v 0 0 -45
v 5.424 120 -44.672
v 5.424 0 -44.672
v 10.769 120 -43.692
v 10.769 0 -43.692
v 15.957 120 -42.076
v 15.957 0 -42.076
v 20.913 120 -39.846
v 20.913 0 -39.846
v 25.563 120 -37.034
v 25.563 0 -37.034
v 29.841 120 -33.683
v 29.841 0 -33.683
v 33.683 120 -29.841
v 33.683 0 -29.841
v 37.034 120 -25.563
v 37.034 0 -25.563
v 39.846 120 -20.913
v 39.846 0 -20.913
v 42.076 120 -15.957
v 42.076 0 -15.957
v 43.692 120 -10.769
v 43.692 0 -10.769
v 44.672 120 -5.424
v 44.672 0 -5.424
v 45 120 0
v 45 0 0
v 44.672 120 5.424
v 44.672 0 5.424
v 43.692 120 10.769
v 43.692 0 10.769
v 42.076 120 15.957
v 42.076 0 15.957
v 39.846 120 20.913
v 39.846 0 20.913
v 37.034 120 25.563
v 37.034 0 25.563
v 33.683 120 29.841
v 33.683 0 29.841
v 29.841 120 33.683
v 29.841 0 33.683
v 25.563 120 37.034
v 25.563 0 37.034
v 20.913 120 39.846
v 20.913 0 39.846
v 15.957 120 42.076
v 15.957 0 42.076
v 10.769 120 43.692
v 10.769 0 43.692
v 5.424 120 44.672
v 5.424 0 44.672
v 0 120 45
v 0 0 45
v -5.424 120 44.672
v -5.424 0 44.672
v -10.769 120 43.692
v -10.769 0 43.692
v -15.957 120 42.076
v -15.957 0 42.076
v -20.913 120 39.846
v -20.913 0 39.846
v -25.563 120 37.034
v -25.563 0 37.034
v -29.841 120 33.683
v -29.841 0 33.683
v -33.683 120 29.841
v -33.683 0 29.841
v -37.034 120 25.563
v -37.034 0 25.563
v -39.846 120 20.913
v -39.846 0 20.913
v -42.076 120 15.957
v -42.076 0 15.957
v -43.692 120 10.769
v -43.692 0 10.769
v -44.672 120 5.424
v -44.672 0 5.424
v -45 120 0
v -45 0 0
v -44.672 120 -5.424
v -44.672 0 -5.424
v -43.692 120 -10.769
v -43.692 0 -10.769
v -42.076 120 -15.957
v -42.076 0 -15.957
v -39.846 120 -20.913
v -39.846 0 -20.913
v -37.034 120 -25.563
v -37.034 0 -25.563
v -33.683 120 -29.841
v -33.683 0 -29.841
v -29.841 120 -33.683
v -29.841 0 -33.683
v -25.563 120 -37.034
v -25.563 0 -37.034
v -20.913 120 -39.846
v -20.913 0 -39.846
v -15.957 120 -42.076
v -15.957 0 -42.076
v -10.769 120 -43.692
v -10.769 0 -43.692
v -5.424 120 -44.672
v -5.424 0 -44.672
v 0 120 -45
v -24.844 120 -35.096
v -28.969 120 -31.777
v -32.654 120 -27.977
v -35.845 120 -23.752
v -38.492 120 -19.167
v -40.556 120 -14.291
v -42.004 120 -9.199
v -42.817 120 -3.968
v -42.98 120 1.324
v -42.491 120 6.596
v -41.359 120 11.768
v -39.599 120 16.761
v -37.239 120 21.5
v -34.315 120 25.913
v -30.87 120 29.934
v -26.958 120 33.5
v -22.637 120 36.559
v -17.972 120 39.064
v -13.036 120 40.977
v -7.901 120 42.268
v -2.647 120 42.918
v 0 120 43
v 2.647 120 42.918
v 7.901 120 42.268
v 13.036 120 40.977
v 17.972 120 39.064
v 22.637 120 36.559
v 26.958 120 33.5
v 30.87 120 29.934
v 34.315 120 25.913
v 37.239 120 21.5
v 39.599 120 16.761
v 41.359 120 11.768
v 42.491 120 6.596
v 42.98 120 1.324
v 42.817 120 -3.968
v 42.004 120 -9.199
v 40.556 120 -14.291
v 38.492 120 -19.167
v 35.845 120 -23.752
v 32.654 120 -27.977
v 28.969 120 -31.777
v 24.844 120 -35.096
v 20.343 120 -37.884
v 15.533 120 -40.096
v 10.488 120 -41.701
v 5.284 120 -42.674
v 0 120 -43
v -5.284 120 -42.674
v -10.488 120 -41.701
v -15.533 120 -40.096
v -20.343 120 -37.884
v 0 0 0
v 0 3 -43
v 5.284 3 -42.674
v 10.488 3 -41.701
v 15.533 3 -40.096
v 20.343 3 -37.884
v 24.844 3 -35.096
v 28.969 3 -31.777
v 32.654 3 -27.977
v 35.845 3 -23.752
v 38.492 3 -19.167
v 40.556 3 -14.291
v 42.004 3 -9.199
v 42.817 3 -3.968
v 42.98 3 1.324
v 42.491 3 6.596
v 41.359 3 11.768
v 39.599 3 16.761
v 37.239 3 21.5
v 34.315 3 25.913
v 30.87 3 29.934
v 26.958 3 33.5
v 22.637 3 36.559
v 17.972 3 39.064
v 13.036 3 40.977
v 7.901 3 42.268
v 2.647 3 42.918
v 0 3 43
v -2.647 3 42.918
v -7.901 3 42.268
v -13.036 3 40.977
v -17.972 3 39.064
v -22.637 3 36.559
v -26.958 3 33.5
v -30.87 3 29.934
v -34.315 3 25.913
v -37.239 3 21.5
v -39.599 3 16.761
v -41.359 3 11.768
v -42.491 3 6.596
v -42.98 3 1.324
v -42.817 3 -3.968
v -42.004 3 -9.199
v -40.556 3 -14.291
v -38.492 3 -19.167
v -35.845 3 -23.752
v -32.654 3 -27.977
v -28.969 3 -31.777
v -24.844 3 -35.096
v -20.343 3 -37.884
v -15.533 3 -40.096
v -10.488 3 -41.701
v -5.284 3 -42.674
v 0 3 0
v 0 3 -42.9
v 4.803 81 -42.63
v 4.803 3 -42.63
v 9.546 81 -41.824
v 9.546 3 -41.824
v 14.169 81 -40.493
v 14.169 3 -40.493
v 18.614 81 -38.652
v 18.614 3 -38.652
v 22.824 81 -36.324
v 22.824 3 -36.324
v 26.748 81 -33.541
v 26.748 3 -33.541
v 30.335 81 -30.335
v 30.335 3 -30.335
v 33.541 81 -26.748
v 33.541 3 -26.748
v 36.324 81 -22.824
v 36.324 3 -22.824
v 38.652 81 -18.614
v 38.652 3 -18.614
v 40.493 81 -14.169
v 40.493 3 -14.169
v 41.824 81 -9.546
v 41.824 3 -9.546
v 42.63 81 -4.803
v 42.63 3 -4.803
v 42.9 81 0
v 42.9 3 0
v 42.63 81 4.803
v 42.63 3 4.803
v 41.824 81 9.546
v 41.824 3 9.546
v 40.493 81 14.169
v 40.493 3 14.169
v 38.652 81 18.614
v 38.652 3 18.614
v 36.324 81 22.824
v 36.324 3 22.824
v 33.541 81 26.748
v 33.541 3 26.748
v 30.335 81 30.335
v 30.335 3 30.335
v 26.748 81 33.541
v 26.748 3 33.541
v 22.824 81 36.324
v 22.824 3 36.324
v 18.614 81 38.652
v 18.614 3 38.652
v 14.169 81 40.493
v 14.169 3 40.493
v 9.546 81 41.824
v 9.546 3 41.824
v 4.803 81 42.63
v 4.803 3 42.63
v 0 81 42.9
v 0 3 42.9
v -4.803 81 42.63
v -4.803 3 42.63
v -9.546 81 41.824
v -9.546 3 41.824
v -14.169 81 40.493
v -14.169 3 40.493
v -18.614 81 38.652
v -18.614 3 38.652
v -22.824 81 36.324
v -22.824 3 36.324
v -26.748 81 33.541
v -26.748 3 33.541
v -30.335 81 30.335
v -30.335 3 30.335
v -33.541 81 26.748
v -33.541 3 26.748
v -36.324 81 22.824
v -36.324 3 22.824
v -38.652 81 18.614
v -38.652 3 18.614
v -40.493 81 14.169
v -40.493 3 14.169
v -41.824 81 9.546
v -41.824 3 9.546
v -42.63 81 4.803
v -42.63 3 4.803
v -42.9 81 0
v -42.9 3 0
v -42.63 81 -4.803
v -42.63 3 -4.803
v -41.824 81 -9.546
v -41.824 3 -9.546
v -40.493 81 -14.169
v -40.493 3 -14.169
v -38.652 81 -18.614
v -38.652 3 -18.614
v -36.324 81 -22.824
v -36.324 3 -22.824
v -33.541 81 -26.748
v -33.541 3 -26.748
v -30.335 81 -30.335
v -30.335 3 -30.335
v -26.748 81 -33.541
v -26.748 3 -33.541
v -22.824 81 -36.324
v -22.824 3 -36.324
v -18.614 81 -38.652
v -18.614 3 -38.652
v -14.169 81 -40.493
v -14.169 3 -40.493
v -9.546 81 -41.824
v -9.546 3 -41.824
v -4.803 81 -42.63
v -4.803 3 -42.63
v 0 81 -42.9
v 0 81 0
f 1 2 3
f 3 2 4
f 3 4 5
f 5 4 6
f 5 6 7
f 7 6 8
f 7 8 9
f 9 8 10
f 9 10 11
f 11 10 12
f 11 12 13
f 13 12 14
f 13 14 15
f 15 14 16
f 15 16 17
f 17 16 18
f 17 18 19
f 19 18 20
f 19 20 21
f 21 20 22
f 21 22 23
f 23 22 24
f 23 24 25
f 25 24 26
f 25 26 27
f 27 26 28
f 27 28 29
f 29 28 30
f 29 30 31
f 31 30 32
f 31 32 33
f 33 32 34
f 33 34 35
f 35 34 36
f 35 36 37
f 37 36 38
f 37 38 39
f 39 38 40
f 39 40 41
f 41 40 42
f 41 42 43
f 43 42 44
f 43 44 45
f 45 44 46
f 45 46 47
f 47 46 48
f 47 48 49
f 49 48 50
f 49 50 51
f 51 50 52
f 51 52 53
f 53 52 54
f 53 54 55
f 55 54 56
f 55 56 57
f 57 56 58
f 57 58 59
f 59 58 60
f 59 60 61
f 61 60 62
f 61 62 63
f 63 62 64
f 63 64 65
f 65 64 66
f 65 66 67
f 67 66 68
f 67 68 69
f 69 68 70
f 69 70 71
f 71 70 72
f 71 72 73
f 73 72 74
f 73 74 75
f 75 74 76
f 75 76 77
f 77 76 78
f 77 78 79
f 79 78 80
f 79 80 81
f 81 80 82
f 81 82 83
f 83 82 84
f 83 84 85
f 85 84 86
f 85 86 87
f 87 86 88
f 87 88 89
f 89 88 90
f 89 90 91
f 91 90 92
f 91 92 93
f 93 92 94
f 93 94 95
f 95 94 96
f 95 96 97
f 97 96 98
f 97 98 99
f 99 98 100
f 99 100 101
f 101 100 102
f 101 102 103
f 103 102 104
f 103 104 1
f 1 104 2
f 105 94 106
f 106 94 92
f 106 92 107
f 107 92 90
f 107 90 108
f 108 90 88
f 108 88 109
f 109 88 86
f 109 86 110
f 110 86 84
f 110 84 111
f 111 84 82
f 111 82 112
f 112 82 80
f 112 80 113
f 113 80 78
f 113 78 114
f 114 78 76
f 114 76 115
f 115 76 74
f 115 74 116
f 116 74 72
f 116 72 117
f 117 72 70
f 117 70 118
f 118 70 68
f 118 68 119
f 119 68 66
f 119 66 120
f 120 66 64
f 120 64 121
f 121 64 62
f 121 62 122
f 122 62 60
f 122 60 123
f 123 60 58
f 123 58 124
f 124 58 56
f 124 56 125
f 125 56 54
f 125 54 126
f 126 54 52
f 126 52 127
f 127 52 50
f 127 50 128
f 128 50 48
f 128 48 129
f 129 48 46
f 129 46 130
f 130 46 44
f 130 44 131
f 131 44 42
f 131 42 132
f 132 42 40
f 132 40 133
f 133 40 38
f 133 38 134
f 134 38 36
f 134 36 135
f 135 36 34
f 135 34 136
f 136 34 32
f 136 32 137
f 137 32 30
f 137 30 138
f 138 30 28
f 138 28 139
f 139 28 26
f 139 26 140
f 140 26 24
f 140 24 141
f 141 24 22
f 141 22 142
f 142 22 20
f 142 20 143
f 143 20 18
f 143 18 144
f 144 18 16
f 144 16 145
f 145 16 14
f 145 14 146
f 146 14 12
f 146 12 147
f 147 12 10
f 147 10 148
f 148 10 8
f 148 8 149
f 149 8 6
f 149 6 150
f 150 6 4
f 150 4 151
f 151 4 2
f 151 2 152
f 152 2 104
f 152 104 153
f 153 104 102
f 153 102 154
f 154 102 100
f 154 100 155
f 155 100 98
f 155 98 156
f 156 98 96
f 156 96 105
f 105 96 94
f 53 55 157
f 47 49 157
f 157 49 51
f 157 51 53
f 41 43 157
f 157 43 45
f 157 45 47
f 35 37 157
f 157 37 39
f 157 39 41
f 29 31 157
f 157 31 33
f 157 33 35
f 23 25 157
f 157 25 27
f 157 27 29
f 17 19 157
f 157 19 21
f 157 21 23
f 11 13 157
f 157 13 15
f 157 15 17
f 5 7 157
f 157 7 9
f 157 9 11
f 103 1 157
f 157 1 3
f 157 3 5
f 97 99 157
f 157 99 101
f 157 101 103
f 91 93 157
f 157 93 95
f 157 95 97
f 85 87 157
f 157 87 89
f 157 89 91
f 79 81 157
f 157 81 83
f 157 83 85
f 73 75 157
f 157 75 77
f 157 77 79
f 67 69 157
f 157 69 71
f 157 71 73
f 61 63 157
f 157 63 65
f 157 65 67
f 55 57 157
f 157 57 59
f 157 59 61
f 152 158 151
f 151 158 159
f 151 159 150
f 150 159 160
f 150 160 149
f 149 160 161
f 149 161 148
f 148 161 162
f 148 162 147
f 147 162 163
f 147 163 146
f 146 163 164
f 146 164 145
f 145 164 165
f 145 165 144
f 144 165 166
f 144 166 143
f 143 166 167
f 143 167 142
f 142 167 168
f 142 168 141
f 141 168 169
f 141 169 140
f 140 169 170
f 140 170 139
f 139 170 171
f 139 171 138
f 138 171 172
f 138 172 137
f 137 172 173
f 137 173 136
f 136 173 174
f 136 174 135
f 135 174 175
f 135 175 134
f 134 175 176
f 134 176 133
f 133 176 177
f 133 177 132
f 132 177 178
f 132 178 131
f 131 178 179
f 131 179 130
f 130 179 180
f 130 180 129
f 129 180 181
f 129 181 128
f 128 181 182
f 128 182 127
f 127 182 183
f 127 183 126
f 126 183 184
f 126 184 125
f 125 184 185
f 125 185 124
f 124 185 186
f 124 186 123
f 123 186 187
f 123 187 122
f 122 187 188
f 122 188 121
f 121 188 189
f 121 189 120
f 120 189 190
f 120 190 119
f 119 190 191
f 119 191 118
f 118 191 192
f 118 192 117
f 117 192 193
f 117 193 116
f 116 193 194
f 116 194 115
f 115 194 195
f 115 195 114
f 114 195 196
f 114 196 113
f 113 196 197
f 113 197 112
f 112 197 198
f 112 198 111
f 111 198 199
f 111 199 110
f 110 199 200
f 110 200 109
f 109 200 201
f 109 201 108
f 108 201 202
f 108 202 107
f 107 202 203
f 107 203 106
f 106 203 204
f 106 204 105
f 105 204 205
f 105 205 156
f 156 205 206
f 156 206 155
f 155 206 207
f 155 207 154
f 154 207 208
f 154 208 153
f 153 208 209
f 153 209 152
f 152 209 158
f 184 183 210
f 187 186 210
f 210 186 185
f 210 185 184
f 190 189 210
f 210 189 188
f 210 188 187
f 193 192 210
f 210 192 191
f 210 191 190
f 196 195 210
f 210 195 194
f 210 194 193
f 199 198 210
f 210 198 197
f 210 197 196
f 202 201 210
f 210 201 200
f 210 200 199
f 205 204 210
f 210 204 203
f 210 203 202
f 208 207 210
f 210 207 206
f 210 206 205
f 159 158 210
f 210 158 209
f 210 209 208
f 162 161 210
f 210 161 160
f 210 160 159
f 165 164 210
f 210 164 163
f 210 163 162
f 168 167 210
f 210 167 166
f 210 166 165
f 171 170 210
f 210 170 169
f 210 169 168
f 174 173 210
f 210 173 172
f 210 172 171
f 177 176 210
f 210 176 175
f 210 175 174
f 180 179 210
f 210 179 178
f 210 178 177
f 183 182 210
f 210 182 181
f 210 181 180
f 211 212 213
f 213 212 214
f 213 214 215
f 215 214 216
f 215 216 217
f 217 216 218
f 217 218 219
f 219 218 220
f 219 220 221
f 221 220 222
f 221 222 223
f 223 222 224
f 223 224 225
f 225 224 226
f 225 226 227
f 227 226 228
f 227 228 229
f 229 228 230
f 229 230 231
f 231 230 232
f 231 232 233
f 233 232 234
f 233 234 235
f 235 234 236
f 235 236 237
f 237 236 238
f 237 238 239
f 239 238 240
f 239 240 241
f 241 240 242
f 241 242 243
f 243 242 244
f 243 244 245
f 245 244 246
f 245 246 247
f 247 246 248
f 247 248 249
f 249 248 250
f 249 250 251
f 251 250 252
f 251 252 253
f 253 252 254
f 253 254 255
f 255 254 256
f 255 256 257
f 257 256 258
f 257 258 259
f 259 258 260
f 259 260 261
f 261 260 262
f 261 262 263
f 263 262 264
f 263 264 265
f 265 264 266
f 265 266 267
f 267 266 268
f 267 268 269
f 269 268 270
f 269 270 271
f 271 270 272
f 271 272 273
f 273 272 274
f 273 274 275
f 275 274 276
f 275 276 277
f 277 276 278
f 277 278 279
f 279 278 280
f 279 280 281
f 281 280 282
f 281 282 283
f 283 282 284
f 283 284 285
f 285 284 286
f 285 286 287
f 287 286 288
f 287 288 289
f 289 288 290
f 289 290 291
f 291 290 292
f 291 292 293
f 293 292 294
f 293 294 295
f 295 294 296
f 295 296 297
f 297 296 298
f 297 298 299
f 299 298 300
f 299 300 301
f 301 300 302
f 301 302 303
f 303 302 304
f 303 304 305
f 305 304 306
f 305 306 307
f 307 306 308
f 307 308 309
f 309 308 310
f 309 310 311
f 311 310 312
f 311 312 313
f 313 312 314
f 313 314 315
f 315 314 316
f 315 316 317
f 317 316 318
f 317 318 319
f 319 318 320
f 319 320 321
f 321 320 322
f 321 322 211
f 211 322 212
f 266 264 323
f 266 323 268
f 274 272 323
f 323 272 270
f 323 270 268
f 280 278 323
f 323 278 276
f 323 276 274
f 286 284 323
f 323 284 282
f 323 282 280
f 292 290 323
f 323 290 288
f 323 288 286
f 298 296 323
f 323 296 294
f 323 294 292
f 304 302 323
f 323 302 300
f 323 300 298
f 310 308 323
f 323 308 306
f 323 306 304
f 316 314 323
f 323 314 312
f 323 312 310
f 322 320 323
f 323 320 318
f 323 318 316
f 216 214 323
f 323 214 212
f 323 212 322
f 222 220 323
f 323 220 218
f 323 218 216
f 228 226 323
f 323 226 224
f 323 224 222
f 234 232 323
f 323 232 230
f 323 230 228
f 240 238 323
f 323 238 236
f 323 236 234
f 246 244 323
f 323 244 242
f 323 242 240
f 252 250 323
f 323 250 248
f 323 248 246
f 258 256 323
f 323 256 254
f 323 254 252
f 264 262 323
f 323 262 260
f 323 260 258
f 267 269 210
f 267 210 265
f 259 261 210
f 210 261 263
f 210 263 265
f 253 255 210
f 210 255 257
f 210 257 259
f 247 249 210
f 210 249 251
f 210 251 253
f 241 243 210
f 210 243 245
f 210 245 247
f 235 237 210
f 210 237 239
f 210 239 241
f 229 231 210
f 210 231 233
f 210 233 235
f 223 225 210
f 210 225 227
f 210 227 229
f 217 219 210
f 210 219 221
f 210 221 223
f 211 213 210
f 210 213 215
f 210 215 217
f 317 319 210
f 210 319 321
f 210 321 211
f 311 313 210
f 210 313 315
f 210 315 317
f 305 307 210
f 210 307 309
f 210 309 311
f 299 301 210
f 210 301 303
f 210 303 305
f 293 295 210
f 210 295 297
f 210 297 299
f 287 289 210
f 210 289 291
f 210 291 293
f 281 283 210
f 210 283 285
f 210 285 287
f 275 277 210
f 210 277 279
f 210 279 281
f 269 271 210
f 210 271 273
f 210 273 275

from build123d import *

# Parameters (mm, degrees)
SKETCH1_R          = 45
JAR_BODY_DEPTH     = 120
JAR_CAVITY_START   = 3
SKETCH2_R          = 43
JAR_CAVITY_DEPTH   = 120
WATER_VISUAL_START = 3
SKETCH3_R          = 42.9
WATER_VISUAL_DEPTH = 78


with BuildPart() as part:
    # Sketch1 → Jar_Body (new body)
    with BuildSketch(Plane(origin=(0, 0, 0), x_dir=(1, 0, 0), z_dir=(0, 1, 0))):
        with Locations(Location((0, 0, 0), (0, 0, 270))):
            Circle(SKETCH1_R)
    extrude(amount=JAR_BODY_DEPTH)

    # Sketch2 → Jar_Cavity (cut)
    with BuildSketch(Plane(origin=(0, 0, 0), x_dir=(1, 0, 0), z_dir=(0, 1, 0)).offset(JAR_CAVITY_START)):
        with Locations(Location((0, 0, 0), (0, 0, 270))):
            Circle(SKETCH2_R)
    extrude(amount=JAR_CAVITY_DEPTH, mode=Mode.SUBTRACT)


with BuildPart() as body_2:
    # Sketch3 → Water_Visual (new body)
    with BuildSketch(Plane(origin=(0, 0, 0), x_dir=(1, 0, 0), z_dir=(0, 1, 0)).offset(WATER_VISUAL_START)):
        with Locations(Location((0, 0, 0), (0, 0, 270))):
            Circle(SKETCH3_R)
    extrude(amount=WATER_VISUAL_DEPTH)


solid = Compound([part.part, body_2.part])
